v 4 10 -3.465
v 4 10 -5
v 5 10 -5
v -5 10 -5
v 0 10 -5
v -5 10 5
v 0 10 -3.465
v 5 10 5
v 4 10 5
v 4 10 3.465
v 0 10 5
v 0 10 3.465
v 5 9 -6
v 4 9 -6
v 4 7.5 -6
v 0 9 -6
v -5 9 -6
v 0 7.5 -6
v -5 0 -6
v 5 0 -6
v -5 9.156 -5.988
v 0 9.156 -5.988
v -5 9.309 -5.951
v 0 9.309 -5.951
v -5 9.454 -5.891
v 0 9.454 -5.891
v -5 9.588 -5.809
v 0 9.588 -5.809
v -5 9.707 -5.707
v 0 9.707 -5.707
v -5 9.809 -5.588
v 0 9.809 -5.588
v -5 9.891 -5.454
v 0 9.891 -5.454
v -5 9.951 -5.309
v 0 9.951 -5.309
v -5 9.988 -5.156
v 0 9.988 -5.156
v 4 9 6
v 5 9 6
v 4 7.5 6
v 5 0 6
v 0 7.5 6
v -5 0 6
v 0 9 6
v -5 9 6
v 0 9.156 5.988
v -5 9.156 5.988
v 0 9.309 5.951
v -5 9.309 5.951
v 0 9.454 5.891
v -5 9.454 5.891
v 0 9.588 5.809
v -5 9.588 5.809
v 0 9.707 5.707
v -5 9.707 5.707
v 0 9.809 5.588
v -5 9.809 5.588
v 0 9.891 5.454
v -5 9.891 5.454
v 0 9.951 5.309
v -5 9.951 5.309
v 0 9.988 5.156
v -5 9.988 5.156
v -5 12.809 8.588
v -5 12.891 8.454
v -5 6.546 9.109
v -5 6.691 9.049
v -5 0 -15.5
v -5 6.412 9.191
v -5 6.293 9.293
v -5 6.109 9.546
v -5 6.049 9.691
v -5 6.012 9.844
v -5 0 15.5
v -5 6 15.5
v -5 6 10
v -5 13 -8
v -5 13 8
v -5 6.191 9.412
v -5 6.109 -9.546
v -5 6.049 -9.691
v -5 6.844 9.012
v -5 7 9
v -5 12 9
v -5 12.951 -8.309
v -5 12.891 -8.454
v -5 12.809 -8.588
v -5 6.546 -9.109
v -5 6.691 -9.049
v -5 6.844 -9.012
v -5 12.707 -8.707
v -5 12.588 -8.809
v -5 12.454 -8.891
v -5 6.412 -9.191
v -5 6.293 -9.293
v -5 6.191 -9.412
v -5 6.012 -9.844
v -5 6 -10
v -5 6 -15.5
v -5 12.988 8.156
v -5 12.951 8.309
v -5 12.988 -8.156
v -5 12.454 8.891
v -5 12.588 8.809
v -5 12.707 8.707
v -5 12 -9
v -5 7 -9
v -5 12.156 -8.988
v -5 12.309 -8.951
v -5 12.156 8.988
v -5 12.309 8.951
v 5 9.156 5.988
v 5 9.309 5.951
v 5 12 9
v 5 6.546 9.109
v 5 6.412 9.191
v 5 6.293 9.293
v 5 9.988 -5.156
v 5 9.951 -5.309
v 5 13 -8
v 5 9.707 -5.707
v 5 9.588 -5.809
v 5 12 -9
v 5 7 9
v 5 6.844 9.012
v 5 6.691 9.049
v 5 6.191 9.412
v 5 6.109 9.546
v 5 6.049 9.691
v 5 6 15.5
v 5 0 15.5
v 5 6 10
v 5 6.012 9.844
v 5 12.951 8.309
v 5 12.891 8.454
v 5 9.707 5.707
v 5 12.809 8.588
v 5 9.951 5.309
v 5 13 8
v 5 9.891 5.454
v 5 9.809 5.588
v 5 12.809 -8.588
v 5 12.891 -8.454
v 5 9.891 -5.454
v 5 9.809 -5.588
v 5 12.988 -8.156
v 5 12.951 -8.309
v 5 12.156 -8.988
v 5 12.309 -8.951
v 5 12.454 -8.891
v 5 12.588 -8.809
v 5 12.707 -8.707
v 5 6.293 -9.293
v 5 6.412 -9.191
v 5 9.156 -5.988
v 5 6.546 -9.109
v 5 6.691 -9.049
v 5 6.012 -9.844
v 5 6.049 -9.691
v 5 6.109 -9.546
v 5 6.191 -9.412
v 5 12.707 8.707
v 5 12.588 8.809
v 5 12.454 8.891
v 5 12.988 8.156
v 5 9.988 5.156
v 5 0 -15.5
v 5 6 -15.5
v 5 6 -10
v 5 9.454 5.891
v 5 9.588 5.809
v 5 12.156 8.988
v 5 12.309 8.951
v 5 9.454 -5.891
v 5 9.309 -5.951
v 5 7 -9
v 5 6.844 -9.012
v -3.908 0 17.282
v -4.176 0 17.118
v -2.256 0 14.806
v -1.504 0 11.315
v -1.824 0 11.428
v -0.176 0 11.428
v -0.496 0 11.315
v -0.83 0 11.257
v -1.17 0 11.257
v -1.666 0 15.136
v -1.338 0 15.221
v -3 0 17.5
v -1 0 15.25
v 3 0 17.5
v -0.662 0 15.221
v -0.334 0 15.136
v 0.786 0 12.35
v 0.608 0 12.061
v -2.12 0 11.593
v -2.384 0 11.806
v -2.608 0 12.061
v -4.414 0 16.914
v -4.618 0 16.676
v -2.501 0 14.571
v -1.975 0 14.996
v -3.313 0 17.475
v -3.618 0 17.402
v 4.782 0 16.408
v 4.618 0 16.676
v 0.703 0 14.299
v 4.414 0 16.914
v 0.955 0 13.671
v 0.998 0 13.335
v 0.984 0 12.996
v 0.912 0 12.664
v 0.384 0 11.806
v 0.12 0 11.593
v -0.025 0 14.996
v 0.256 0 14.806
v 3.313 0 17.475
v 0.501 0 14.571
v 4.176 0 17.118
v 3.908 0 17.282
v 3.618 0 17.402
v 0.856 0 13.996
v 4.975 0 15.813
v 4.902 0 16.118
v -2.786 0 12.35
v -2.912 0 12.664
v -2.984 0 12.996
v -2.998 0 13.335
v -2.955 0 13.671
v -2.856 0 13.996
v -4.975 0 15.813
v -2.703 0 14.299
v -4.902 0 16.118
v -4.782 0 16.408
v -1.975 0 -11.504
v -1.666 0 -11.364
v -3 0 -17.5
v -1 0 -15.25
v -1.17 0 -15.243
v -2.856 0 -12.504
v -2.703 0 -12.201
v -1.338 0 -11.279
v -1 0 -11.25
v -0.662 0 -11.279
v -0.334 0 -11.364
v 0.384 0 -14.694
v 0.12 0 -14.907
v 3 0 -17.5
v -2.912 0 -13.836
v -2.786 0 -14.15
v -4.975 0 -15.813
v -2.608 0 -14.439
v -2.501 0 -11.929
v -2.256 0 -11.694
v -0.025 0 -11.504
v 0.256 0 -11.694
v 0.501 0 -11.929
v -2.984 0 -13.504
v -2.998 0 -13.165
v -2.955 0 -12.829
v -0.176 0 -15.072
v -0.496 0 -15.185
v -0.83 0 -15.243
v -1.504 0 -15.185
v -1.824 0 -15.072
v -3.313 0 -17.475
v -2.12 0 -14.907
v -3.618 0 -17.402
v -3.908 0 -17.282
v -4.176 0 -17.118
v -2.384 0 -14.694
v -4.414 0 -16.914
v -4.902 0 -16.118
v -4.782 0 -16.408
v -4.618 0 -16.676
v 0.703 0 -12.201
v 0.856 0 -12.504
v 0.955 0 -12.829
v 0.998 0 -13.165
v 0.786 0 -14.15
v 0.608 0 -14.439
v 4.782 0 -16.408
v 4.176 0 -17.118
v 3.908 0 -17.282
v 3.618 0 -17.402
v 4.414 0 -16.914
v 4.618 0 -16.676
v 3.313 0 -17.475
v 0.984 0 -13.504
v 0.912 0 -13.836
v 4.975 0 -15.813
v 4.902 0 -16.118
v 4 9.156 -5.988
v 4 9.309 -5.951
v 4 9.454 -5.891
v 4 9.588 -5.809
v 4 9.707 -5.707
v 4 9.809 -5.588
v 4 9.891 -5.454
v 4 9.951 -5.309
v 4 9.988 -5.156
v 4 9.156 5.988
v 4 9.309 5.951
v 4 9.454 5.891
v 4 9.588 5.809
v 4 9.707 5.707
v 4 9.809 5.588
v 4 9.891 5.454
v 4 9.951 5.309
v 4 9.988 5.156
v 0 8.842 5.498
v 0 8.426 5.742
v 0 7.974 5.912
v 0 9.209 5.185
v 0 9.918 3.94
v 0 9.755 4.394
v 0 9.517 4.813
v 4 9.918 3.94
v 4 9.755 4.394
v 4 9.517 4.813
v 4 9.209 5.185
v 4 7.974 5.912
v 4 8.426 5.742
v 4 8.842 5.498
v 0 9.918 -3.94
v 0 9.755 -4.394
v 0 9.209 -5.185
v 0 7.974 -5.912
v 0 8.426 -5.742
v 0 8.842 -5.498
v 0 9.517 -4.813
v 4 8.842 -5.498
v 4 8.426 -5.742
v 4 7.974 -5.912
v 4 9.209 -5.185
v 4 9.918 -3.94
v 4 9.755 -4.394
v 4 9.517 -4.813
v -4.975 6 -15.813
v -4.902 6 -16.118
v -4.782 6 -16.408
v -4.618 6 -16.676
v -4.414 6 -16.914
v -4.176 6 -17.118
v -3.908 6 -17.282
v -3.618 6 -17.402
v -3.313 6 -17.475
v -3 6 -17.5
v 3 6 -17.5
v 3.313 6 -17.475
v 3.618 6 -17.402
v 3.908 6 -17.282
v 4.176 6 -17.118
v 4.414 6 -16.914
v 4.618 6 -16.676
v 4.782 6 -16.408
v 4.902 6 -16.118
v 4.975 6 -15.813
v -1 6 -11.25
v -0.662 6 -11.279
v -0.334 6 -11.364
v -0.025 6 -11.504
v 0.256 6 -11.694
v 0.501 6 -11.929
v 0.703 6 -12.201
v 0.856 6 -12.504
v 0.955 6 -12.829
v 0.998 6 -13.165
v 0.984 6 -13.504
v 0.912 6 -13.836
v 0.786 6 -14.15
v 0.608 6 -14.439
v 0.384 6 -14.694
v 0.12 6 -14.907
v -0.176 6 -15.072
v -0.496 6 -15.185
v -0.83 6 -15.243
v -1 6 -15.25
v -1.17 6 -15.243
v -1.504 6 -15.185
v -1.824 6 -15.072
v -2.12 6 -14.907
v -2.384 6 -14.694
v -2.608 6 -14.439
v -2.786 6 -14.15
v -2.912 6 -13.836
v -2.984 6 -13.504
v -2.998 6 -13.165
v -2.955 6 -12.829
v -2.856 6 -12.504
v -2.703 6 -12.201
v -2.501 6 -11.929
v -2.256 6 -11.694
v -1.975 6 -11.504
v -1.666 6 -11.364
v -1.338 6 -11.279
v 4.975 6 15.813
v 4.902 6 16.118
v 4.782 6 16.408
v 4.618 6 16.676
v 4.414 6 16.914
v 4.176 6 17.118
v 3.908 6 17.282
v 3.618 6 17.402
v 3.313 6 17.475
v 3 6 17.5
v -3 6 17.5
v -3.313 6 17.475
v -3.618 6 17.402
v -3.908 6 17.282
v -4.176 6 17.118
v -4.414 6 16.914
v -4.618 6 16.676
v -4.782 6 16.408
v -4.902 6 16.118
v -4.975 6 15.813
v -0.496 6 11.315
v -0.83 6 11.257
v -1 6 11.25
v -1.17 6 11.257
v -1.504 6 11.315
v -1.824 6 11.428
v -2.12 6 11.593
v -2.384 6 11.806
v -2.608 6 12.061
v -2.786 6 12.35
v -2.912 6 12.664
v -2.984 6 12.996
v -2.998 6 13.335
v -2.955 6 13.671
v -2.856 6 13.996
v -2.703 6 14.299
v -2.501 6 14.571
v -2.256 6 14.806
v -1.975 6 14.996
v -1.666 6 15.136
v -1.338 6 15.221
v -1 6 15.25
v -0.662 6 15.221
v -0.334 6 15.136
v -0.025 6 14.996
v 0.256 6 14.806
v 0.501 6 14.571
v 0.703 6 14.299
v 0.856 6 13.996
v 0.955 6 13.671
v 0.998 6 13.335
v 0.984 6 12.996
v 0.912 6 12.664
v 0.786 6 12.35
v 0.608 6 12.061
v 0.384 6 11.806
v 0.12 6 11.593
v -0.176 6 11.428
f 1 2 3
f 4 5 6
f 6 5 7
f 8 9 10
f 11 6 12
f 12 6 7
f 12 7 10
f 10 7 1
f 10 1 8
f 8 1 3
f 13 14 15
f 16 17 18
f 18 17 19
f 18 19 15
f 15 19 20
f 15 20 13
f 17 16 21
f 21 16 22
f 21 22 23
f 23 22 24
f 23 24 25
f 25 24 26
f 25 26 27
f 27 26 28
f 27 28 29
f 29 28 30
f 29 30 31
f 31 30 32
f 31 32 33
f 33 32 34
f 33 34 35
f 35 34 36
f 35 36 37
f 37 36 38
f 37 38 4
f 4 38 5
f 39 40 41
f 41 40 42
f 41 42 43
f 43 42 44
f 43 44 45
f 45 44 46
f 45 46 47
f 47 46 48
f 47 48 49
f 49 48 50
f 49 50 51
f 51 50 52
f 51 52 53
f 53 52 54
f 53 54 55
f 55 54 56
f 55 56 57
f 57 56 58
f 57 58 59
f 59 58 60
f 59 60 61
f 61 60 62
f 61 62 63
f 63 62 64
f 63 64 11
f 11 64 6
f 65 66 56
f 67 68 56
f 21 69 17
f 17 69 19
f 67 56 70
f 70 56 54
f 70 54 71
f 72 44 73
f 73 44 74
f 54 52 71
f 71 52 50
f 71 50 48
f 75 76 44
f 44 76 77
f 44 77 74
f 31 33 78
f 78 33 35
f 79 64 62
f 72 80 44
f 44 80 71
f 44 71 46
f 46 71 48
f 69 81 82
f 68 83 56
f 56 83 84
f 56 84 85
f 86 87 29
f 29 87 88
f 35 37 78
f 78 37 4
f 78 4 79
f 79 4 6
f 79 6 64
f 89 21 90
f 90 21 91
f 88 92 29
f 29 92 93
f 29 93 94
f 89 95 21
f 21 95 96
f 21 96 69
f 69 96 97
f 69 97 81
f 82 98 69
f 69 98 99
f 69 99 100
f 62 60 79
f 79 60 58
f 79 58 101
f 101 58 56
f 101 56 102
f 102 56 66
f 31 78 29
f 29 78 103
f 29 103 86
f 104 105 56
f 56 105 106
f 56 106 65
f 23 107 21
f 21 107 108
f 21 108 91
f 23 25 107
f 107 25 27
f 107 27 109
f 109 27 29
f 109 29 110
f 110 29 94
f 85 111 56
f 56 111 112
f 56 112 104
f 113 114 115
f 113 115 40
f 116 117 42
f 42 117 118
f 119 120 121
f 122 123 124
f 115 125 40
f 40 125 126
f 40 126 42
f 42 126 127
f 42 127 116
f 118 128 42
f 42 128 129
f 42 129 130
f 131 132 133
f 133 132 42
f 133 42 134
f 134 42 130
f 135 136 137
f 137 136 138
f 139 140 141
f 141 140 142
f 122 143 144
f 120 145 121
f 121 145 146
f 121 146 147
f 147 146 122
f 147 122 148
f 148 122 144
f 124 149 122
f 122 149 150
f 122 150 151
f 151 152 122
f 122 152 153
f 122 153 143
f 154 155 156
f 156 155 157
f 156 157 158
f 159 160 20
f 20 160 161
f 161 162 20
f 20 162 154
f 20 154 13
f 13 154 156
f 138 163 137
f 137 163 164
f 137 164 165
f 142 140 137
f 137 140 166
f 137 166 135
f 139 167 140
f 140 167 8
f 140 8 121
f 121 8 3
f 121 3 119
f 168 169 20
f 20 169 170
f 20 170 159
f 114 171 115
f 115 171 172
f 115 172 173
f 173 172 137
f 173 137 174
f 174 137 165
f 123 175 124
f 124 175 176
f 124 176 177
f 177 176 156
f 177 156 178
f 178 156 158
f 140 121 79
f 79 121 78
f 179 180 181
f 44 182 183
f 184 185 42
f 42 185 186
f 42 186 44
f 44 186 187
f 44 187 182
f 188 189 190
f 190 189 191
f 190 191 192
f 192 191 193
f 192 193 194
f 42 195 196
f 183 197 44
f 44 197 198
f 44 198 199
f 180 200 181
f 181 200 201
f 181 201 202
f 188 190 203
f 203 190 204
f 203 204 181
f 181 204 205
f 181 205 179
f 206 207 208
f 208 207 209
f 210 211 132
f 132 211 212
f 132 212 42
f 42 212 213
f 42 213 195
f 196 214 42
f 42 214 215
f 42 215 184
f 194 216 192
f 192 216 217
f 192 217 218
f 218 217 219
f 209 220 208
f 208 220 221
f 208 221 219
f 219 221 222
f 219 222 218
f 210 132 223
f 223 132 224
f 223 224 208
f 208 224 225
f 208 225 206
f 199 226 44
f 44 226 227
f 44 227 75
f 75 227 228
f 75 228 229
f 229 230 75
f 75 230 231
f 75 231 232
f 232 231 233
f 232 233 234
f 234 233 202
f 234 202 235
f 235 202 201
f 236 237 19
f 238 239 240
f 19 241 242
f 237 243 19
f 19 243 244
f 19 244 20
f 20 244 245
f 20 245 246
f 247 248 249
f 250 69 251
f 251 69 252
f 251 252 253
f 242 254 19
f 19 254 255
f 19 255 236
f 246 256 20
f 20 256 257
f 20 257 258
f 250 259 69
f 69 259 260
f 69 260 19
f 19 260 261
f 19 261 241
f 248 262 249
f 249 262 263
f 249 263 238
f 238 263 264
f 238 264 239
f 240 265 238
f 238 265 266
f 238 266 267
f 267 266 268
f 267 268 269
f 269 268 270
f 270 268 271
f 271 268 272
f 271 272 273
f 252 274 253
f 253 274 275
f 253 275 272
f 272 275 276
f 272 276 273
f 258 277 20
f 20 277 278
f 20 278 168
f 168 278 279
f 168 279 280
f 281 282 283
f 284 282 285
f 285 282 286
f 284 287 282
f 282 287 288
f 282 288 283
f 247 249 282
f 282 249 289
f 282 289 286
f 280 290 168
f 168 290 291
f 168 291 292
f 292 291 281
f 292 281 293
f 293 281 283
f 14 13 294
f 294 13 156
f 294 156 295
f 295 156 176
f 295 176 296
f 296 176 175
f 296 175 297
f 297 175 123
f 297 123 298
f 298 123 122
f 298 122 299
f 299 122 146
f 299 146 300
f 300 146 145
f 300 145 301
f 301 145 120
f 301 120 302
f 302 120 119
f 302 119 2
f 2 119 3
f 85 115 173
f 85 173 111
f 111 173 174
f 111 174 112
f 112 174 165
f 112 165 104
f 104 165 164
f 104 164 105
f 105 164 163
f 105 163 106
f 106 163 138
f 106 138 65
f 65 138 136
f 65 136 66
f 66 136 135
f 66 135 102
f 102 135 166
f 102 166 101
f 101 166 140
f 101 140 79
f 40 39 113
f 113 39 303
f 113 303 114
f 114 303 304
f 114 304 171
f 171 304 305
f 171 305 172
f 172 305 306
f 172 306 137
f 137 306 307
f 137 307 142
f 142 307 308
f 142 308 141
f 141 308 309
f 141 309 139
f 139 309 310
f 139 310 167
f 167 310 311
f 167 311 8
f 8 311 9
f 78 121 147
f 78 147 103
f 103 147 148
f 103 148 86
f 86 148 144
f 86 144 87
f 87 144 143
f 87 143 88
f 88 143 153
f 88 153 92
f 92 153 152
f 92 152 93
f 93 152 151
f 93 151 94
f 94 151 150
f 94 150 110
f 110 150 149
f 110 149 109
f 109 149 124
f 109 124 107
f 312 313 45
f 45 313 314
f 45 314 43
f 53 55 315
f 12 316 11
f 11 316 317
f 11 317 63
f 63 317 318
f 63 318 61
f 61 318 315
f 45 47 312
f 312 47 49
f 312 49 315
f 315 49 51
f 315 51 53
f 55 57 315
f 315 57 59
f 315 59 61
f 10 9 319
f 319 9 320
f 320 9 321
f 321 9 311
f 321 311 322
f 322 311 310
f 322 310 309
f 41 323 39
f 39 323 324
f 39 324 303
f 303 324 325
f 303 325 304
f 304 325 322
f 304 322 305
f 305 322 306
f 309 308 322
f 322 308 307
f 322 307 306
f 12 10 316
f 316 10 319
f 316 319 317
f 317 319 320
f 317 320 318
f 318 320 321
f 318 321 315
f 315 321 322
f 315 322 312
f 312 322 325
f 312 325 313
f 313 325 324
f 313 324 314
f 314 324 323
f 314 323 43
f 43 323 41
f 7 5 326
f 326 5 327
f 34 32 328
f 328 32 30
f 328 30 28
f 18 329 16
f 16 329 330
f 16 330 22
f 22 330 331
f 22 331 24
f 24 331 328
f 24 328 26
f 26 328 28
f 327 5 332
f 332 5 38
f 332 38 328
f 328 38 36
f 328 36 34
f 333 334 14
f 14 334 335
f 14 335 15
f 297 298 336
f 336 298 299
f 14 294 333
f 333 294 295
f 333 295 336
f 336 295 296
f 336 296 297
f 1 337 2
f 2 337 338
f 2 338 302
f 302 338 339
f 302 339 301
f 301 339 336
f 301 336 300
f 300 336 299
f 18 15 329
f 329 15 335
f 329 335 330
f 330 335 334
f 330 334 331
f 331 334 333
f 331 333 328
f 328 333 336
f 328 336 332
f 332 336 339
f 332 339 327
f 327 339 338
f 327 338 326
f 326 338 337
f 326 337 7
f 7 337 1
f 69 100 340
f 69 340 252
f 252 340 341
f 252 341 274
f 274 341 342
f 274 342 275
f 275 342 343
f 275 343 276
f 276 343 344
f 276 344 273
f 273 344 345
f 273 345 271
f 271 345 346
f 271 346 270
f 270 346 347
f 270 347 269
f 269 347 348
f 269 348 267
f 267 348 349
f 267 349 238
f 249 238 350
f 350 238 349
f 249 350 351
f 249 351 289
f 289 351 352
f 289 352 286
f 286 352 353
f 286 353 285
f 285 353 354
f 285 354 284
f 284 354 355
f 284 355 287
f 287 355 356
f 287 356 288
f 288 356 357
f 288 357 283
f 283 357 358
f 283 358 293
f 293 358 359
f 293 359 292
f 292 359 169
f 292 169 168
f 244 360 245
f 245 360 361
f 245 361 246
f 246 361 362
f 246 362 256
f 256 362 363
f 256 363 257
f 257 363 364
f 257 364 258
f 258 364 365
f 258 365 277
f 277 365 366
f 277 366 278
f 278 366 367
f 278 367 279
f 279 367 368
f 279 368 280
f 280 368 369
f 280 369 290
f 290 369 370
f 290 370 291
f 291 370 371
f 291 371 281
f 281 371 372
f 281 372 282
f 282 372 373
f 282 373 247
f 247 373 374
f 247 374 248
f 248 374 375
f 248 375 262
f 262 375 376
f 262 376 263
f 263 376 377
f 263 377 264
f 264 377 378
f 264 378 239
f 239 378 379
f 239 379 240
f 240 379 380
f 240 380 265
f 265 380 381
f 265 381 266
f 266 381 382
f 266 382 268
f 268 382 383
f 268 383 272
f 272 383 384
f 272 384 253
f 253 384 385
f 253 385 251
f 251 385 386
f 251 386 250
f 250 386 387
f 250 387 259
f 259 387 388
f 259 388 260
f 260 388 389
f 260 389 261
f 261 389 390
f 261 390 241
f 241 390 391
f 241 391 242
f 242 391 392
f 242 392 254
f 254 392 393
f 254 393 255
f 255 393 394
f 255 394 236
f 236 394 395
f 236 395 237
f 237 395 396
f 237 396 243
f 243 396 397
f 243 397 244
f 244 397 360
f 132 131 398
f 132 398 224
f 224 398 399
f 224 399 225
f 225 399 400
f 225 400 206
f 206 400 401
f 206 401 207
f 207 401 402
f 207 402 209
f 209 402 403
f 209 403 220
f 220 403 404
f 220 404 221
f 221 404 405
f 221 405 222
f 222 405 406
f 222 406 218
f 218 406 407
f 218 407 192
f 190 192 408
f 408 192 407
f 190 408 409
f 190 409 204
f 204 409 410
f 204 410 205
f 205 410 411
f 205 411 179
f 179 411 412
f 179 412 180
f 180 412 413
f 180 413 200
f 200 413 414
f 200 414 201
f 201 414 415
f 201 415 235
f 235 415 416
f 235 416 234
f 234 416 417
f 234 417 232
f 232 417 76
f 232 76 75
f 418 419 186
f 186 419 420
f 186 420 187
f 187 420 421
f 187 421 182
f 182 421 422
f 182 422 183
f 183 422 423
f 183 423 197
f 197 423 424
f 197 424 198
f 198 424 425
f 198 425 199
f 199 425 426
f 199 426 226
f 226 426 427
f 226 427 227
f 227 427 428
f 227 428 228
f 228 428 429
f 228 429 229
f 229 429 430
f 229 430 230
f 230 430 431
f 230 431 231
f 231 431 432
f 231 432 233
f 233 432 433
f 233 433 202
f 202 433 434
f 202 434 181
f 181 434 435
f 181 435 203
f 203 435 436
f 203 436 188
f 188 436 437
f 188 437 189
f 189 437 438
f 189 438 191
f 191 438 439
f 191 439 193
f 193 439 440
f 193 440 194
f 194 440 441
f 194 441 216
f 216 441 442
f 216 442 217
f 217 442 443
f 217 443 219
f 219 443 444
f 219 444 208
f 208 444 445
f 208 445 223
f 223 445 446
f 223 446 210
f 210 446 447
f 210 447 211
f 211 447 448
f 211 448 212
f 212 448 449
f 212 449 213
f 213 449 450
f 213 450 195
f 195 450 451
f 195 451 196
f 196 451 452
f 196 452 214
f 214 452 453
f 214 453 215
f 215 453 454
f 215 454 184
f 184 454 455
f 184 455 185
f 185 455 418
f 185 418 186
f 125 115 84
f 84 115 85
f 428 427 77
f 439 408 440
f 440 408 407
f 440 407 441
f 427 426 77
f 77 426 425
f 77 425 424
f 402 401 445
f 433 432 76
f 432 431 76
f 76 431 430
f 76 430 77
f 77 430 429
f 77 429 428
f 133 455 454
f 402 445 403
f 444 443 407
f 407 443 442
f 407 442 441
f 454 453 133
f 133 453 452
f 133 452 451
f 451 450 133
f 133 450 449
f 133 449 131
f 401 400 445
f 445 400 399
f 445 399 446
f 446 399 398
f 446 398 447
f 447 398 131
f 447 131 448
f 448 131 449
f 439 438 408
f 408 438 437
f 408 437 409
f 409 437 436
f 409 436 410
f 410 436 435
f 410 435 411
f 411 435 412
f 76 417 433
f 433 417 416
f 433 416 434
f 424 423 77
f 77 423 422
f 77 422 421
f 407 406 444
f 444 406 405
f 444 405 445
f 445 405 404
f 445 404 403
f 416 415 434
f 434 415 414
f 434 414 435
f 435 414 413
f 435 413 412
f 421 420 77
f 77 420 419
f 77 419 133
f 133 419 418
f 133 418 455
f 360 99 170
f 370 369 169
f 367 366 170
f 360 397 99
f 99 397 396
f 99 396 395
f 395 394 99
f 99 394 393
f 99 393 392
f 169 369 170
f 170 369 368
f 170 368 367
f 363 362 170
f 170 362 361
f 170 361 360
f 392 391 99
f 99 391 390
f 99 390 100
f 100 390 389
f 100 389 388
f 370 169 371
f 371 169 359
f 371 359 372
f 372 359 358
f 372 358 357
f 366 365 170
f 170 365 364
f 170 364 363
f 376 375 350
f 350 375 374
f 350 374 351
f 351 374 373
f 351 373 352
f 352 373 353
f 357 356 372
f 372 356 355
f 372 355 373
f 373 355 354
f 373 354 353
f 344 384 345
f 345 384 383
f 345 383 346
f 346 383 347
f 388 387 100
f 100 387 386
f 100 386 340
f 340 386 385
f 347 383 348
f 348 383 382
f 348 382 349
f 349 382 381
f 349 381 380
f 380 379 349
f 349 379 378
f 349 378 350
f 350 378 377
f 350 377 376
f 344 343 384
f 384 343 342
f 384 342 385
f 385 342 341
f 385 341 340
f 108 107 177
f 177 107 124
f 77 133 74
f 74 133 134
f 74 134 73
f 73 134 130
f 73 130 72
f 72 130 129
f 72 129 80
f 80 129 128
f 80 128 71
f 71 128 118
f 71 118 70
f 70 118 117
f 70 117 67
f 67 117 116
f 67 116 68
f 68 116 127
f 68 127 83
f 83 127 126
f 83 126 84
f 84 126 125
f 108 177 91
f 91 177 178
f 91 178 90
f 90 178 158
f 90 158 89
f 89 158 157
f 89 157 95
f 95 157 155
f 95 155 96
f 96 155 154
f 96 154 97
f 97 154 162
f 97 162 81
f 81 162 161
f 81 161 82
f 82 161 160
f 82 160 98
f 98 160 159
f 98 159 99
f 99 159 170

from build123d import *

# Parameters (mm, degrees)
ESBO_O1_W                      = 18.5
ESBO_O1_H                      = 13
RESSALTO_EXTRUS_O1_DEPTH       = 8
ESBO_O2_W                      = 8.5
ESBO_O2_H                      = 10
CORTE_EXTRUS_O1_DEPTH          = 21.377683872
ESBO_O3_W                      = 10
ESBO_O3_H                      = 3
RESSALTO_EXTRUS_O2_DEPTH       = 20
ESBO_O4_W                      = 10
ESBO_O4_H                      = 8
RESSALTO_EXTRUS_O3_DEPTH       = 10
ESBO_O5_W                      = 8
ESBO_O5_H                      = 3
RESSALTO_EXTRUS_O4_DEPTH       = 8.5
ESBO_O6_W                      = 5
ESBO_O6_H                      = 8
CORTE_EXTRUS_O2_DEPTH          = 22.563858653
ESBO_O7_W                      = 5
ESBO_O7_H                      = 8
CORTE_EXTRUS_O3_DEPTH          = 22.563858653
FURO_DE_DI_METRO_4_0_4_1_D     = 4
FURO_DE_DI_METRO_4_0_4_1_DEPTH = 13
FURO_DE_DI_METRO_4_0_4_2_D     = 4
FILETE1_R                      = 1
FILETE2_R                      = 2
RESSALTO_EXTRUS_O5_DEPTH       = 4
ESBO_O16_W                     = 10.570066626
ESBO_O16_H                     = 8.435311821
CORTE_EXTRUS_O4_DEPTH          = 10
ESBO_O17_W                     = 5
ESBO_O17_H                     = 6
CORTE_EXTRUS_O5_DEPTH          = 10
ESBO_O18_W                     = 5
ESBO_O18_H                     = 7.112668327
CORTE_EXTRUS_O6_DEPTH          = 22
ESBO_O19_W                     = 8.5
ESBO_O19_H                     = 3
CORTE_EXTRUS_O7_DEPTH          = 22
ESBO_O28_R                     = 2
RESSALTO_EXTRUS_O9_DEPTH       = 13
ESBO_O29_W                     = 8.5
ESBO_O29_H                     = 7
CORTE_EXTRUS_O10_DEPTH         = 25
FILETE3_R                      = 1


with BuildPart() as part:
    # Esboço1 → Ressalto-extrusão1 (new body)
    with BuildSketch(Plane(origin=(0, 0, 6), x_dir=(-1, 0, 0), z_dir=(0, 0, -1))):
        with Locations((4.25, 6.5)):
            Rectangle(ESBO_O1_W, ESBO_O1_H)
    extrude(amount=-RESSALTO_EXTRUS_O1_DEPTH)

    # Esboço2 → Corte-extrusão1 (cut, through all)
    with BuildSketch(Plane.XY.offset(14)):
        with Locations((-9.25, 8)):
            Rectangle(ESBO_O2_W, ESBO_O2_H)
    extrude(amount=-CORTE_EXTRUS_O1_DEPTH, mode=Mode.SUBTRACT)

    # Esboço3 → Ressalto-extrusão2 (add)
    with BuildSketch(Plane(origin=(0, 0, 6), x_dir=(-1, 0, 0), z_dir=(0, 0, -1))):
        with Locations((0, 11.5)):
            Rectangle(ESBO_O3_W, ESBO_O3_H)
    extrude(amount=RESSALTO_EXTRUS_O2_DEPTH)

    # Esboço4 → Ressalto-extrusão3 (add)
    with BuildSketch(Plane.XZ.offset(-10)):
        with Locations((0, -10)):
            Rectangle(ESBO_O4_W, ESBO_O4_H)
    extrude(amount=RESSALTO_EXTRUS_O3_DEPTH)

    # Esboço5 → Ressalto-extrusão4 (add)
    with BuildSketch(Plane.ZY.offset(5)):
        with Locations((-10, 1.5)):
            Rectangle(ESBO_O5_W, ESBO_O5_H)
    extrude(amount=RESSALTO_EXTRUS_O4_DEPTH)

    # Esboço6 → Corte-extrusão2 (cut, through all)
    with BuildSketch(Plane.ZY.offset(5)):
        with Locations((-11.5, 9)):
            Rectangle(ESBO_O6_W, ESBO_O6_H)
    extrude(amount=-CORTE_EXTRUS_O2_DEPTH, mode=Mode.SUBTRACT)

    # Esboço7 → Corte-extrusão3 (cut, through all)
    with BuildSketch(Plane.ZY.offset(5)):
        with Locations((11.5, 9)):
            Rectangle(ESBO_O7_W, ESBO_O7_H)
    extrude(amount=-CORTE_EXTRUS_O3_DEPTH, mode=Mode.SUBTRACT)

    # Furo de diâmetro Ø4.0 (4)1
    with Locations(Plane(origin=(0, 0, 0), x_dir=(-1, 0, 0), z_dir=(0, -1, 0))):
        with Locations((9.25, 10)):
            Hole(FURO_DE_DI_METRO_4_0_4_1_D / 2, depth=FURO_DE_DI_METRO_4_0_4_1_DEPTH)

    # Furo de diâmetro Ø4.0 (4)2 (through all)
    with Locations(Plane(origin=(0, 3, 0), x_dir=(1, 0, 0), z_dir=(0, 1, 0))):
        with Locations((-9.25, -10)):
            Hole(FURO_DE_DI_METRO_4_0_4_2_D / 2)

    # Filete1
    filete1_edges = [part.edges().sort_by_distance(p)[0] for p in [
        (0, 10, 6),
        (0, 10, -6),
        (0, 13, -9),
        (0, 5, -9),
        (0, 13, 9),
        (0, 5, 9),
    ]]
    fillet(filete1_edges, radius=FILETE1_R)

    # Filete2
    filete2_edges = [part.edges().sort_by_distance(p)[0] for p in [
        (-13.5, 1.5, 14),
        (-13.5, 1.5, 6),
        (-13.5, 1.5, -14),
        (-13.5, 1.5, -6),
    ]]
    fillet(filete2_edges, radius=FILETE2_R)

    # Esboço15 → Ressalto-extrusão5 (add)
    with BuildSketch(Plane(origin=(4, 0, 0), x_dir=(0, 0, -1), z_dir=(1, 0, 0))):
        with BuildLine():
            Line((-6, 10), (-6, 7.5))
            ThreePointArc((-6, 7.5), (-5.18496543, 9.208933408), (-3.464806021, 10))
            Line((-3.464806021, 10), (-6, 10))
        make_face()
        with BuildLine():
            ThreePointArc((3.464806021, 10), (5.18496543, 9.208933408), (6, 7.5))
            Line((6, 7.5), (6, 10))
            Line((6, 10), (3.464806021, 10))
        make_face()
    extrude(amount=-RESSALTO_EXTRUS_O5_DEPTH)

    # Esboço16 → Corte-extrusão4 (cut)
    with BuildSketch(Plane(origin=(0, 3, 0), x_dir=(1, 0, 0), z_dir=(0, 1, 0))):
        with Locations((-10.285033313, -10.21765591)):
            Rectangle(ESBO_O16_W, ESBO_O16_H)
    extrude(amount=-CORTE_EXTRUS_O4_DEPTH, mode=Mode.SUBTRACT)

    # Esboço17 → Corte-extrusão5 (cut)
    with BuildSketch(Plane(origin=(5, 0, 0), x_dir=(0, 0, -1), z_dir=(1, 0, 0))):
        with Locations((-11.5, 3)):
            Rectangle(ESBO_O17_W, ESBO_O17_H)
    extrude(amount=-CORTE_EXTRUS_O5_DEPTH, mode=Mode.SUBTRACT)

    # Esboço18 → Corte-extrusão6 (cut)
    with BuildSketch(Plane(origin=(5, 0, 0), x_dir=(0, 0, -1), z_dir=(1, 0, 0))):
        with Locations((11.5, 3.556334164)):
            Rectangle(ESBO_O18_W, ESBO_O18_H)
    extrude(amount=-CORTE_EXTRUS_O6_DEPTH, mode=Mode.SUBTRACT)

    # Esboço19 → Corte-extrusão7 (cut)
    with BuildSketch(Plane.XY.offset(-6)):
        with Locations((-9.25, 1.5)):
            Rectangle(ESBO_O19_W, ESBO_O19_H)
    extrude(amount=-CORTE_EXTRUS_O7_DEPTH, mode=Mode.SUBTRACT)

    # Esboço28 → Ressalto-extrusão9 (add, through all)
    # profile 1 of 2: a face of its own
    with BuildSketch(Plane(origin=(0, 13, 0), x_dir=(1, 0, 0), z_dir=(0, 1, 0))):
        with BuildLine():
            Line((-5, -9), (5, -9))
            Line((5, -9), (5, -15.5))
            ThreePointArc((5, -15.5), (4.414213562, -16.914213562), (3, -17.5))
            Line((3, -17.5), (-3, -17.5))
            ThreePointArc((-3, -17.5), (-4.414213562, -16.914213562), (-5, -15.5))
            Line((-5, -15.5), (-5, -9))
        make_face()
        with Locations(Location((-1, -13.25, 0), (0, 0, 270))):
            Circle(ESBO_O28_R, mode=Mode.SUBTRACT)
    # profile 2 of 2: a face of its own
    with BuildSketch(Plane(origin=(0, 13, 0), x_dir=(1, 0, 0), z_dir=(0, 1, 0))):
        with BuildLine():
            Line((3, 17.5), (-3, 17.5))
            ThreePointArc((-3, 17.5), (-4.414213562, 16.914213562), (-5, 15.5))
            Line((-5, 15.5), (-5, 9))
            Line((-5, 9), (5, 9))
            Line((5, 9), (5, 15.5))
            ThreePointArc((5, 15.5), (4.414213562, 16.914213562), (3, 17.5))
        make_face()
        with Locations(Location((-1, 13.25, 0), (0, 0, 90))):
            Circle(ESBO_O28_R, mode=Mode.SUBTRACT)
    extrude(amount=-RESSALTO_EXTRUS_O9_DEPTH)

    # Esboço29 → Corte-extrusão10 (cut)
    with BuildSketch(Plane.ZY.offset(5)):
        with Locations((-13.25, 9.5)):
            Rectangle(ESBO_O29_W, ESBO_O29_H)
        with Locations((13.25, 9.5)):
            Rectangle(ESBO_O29_W, ESBO_O29_H)
    extrude(amount=-CORTE_EXTRUS_O10_DEPTH, mode=Mode.SUBTRACT)

    # Filete3
    filete3_edges = [part.edges().sort_by_distance(p)[0] for p in [
        (0, 6, -9),
        (0, 6, 9),
    ]]
    fillet(filete3_edges, radius=FILETE3_R)


solid = part.part
